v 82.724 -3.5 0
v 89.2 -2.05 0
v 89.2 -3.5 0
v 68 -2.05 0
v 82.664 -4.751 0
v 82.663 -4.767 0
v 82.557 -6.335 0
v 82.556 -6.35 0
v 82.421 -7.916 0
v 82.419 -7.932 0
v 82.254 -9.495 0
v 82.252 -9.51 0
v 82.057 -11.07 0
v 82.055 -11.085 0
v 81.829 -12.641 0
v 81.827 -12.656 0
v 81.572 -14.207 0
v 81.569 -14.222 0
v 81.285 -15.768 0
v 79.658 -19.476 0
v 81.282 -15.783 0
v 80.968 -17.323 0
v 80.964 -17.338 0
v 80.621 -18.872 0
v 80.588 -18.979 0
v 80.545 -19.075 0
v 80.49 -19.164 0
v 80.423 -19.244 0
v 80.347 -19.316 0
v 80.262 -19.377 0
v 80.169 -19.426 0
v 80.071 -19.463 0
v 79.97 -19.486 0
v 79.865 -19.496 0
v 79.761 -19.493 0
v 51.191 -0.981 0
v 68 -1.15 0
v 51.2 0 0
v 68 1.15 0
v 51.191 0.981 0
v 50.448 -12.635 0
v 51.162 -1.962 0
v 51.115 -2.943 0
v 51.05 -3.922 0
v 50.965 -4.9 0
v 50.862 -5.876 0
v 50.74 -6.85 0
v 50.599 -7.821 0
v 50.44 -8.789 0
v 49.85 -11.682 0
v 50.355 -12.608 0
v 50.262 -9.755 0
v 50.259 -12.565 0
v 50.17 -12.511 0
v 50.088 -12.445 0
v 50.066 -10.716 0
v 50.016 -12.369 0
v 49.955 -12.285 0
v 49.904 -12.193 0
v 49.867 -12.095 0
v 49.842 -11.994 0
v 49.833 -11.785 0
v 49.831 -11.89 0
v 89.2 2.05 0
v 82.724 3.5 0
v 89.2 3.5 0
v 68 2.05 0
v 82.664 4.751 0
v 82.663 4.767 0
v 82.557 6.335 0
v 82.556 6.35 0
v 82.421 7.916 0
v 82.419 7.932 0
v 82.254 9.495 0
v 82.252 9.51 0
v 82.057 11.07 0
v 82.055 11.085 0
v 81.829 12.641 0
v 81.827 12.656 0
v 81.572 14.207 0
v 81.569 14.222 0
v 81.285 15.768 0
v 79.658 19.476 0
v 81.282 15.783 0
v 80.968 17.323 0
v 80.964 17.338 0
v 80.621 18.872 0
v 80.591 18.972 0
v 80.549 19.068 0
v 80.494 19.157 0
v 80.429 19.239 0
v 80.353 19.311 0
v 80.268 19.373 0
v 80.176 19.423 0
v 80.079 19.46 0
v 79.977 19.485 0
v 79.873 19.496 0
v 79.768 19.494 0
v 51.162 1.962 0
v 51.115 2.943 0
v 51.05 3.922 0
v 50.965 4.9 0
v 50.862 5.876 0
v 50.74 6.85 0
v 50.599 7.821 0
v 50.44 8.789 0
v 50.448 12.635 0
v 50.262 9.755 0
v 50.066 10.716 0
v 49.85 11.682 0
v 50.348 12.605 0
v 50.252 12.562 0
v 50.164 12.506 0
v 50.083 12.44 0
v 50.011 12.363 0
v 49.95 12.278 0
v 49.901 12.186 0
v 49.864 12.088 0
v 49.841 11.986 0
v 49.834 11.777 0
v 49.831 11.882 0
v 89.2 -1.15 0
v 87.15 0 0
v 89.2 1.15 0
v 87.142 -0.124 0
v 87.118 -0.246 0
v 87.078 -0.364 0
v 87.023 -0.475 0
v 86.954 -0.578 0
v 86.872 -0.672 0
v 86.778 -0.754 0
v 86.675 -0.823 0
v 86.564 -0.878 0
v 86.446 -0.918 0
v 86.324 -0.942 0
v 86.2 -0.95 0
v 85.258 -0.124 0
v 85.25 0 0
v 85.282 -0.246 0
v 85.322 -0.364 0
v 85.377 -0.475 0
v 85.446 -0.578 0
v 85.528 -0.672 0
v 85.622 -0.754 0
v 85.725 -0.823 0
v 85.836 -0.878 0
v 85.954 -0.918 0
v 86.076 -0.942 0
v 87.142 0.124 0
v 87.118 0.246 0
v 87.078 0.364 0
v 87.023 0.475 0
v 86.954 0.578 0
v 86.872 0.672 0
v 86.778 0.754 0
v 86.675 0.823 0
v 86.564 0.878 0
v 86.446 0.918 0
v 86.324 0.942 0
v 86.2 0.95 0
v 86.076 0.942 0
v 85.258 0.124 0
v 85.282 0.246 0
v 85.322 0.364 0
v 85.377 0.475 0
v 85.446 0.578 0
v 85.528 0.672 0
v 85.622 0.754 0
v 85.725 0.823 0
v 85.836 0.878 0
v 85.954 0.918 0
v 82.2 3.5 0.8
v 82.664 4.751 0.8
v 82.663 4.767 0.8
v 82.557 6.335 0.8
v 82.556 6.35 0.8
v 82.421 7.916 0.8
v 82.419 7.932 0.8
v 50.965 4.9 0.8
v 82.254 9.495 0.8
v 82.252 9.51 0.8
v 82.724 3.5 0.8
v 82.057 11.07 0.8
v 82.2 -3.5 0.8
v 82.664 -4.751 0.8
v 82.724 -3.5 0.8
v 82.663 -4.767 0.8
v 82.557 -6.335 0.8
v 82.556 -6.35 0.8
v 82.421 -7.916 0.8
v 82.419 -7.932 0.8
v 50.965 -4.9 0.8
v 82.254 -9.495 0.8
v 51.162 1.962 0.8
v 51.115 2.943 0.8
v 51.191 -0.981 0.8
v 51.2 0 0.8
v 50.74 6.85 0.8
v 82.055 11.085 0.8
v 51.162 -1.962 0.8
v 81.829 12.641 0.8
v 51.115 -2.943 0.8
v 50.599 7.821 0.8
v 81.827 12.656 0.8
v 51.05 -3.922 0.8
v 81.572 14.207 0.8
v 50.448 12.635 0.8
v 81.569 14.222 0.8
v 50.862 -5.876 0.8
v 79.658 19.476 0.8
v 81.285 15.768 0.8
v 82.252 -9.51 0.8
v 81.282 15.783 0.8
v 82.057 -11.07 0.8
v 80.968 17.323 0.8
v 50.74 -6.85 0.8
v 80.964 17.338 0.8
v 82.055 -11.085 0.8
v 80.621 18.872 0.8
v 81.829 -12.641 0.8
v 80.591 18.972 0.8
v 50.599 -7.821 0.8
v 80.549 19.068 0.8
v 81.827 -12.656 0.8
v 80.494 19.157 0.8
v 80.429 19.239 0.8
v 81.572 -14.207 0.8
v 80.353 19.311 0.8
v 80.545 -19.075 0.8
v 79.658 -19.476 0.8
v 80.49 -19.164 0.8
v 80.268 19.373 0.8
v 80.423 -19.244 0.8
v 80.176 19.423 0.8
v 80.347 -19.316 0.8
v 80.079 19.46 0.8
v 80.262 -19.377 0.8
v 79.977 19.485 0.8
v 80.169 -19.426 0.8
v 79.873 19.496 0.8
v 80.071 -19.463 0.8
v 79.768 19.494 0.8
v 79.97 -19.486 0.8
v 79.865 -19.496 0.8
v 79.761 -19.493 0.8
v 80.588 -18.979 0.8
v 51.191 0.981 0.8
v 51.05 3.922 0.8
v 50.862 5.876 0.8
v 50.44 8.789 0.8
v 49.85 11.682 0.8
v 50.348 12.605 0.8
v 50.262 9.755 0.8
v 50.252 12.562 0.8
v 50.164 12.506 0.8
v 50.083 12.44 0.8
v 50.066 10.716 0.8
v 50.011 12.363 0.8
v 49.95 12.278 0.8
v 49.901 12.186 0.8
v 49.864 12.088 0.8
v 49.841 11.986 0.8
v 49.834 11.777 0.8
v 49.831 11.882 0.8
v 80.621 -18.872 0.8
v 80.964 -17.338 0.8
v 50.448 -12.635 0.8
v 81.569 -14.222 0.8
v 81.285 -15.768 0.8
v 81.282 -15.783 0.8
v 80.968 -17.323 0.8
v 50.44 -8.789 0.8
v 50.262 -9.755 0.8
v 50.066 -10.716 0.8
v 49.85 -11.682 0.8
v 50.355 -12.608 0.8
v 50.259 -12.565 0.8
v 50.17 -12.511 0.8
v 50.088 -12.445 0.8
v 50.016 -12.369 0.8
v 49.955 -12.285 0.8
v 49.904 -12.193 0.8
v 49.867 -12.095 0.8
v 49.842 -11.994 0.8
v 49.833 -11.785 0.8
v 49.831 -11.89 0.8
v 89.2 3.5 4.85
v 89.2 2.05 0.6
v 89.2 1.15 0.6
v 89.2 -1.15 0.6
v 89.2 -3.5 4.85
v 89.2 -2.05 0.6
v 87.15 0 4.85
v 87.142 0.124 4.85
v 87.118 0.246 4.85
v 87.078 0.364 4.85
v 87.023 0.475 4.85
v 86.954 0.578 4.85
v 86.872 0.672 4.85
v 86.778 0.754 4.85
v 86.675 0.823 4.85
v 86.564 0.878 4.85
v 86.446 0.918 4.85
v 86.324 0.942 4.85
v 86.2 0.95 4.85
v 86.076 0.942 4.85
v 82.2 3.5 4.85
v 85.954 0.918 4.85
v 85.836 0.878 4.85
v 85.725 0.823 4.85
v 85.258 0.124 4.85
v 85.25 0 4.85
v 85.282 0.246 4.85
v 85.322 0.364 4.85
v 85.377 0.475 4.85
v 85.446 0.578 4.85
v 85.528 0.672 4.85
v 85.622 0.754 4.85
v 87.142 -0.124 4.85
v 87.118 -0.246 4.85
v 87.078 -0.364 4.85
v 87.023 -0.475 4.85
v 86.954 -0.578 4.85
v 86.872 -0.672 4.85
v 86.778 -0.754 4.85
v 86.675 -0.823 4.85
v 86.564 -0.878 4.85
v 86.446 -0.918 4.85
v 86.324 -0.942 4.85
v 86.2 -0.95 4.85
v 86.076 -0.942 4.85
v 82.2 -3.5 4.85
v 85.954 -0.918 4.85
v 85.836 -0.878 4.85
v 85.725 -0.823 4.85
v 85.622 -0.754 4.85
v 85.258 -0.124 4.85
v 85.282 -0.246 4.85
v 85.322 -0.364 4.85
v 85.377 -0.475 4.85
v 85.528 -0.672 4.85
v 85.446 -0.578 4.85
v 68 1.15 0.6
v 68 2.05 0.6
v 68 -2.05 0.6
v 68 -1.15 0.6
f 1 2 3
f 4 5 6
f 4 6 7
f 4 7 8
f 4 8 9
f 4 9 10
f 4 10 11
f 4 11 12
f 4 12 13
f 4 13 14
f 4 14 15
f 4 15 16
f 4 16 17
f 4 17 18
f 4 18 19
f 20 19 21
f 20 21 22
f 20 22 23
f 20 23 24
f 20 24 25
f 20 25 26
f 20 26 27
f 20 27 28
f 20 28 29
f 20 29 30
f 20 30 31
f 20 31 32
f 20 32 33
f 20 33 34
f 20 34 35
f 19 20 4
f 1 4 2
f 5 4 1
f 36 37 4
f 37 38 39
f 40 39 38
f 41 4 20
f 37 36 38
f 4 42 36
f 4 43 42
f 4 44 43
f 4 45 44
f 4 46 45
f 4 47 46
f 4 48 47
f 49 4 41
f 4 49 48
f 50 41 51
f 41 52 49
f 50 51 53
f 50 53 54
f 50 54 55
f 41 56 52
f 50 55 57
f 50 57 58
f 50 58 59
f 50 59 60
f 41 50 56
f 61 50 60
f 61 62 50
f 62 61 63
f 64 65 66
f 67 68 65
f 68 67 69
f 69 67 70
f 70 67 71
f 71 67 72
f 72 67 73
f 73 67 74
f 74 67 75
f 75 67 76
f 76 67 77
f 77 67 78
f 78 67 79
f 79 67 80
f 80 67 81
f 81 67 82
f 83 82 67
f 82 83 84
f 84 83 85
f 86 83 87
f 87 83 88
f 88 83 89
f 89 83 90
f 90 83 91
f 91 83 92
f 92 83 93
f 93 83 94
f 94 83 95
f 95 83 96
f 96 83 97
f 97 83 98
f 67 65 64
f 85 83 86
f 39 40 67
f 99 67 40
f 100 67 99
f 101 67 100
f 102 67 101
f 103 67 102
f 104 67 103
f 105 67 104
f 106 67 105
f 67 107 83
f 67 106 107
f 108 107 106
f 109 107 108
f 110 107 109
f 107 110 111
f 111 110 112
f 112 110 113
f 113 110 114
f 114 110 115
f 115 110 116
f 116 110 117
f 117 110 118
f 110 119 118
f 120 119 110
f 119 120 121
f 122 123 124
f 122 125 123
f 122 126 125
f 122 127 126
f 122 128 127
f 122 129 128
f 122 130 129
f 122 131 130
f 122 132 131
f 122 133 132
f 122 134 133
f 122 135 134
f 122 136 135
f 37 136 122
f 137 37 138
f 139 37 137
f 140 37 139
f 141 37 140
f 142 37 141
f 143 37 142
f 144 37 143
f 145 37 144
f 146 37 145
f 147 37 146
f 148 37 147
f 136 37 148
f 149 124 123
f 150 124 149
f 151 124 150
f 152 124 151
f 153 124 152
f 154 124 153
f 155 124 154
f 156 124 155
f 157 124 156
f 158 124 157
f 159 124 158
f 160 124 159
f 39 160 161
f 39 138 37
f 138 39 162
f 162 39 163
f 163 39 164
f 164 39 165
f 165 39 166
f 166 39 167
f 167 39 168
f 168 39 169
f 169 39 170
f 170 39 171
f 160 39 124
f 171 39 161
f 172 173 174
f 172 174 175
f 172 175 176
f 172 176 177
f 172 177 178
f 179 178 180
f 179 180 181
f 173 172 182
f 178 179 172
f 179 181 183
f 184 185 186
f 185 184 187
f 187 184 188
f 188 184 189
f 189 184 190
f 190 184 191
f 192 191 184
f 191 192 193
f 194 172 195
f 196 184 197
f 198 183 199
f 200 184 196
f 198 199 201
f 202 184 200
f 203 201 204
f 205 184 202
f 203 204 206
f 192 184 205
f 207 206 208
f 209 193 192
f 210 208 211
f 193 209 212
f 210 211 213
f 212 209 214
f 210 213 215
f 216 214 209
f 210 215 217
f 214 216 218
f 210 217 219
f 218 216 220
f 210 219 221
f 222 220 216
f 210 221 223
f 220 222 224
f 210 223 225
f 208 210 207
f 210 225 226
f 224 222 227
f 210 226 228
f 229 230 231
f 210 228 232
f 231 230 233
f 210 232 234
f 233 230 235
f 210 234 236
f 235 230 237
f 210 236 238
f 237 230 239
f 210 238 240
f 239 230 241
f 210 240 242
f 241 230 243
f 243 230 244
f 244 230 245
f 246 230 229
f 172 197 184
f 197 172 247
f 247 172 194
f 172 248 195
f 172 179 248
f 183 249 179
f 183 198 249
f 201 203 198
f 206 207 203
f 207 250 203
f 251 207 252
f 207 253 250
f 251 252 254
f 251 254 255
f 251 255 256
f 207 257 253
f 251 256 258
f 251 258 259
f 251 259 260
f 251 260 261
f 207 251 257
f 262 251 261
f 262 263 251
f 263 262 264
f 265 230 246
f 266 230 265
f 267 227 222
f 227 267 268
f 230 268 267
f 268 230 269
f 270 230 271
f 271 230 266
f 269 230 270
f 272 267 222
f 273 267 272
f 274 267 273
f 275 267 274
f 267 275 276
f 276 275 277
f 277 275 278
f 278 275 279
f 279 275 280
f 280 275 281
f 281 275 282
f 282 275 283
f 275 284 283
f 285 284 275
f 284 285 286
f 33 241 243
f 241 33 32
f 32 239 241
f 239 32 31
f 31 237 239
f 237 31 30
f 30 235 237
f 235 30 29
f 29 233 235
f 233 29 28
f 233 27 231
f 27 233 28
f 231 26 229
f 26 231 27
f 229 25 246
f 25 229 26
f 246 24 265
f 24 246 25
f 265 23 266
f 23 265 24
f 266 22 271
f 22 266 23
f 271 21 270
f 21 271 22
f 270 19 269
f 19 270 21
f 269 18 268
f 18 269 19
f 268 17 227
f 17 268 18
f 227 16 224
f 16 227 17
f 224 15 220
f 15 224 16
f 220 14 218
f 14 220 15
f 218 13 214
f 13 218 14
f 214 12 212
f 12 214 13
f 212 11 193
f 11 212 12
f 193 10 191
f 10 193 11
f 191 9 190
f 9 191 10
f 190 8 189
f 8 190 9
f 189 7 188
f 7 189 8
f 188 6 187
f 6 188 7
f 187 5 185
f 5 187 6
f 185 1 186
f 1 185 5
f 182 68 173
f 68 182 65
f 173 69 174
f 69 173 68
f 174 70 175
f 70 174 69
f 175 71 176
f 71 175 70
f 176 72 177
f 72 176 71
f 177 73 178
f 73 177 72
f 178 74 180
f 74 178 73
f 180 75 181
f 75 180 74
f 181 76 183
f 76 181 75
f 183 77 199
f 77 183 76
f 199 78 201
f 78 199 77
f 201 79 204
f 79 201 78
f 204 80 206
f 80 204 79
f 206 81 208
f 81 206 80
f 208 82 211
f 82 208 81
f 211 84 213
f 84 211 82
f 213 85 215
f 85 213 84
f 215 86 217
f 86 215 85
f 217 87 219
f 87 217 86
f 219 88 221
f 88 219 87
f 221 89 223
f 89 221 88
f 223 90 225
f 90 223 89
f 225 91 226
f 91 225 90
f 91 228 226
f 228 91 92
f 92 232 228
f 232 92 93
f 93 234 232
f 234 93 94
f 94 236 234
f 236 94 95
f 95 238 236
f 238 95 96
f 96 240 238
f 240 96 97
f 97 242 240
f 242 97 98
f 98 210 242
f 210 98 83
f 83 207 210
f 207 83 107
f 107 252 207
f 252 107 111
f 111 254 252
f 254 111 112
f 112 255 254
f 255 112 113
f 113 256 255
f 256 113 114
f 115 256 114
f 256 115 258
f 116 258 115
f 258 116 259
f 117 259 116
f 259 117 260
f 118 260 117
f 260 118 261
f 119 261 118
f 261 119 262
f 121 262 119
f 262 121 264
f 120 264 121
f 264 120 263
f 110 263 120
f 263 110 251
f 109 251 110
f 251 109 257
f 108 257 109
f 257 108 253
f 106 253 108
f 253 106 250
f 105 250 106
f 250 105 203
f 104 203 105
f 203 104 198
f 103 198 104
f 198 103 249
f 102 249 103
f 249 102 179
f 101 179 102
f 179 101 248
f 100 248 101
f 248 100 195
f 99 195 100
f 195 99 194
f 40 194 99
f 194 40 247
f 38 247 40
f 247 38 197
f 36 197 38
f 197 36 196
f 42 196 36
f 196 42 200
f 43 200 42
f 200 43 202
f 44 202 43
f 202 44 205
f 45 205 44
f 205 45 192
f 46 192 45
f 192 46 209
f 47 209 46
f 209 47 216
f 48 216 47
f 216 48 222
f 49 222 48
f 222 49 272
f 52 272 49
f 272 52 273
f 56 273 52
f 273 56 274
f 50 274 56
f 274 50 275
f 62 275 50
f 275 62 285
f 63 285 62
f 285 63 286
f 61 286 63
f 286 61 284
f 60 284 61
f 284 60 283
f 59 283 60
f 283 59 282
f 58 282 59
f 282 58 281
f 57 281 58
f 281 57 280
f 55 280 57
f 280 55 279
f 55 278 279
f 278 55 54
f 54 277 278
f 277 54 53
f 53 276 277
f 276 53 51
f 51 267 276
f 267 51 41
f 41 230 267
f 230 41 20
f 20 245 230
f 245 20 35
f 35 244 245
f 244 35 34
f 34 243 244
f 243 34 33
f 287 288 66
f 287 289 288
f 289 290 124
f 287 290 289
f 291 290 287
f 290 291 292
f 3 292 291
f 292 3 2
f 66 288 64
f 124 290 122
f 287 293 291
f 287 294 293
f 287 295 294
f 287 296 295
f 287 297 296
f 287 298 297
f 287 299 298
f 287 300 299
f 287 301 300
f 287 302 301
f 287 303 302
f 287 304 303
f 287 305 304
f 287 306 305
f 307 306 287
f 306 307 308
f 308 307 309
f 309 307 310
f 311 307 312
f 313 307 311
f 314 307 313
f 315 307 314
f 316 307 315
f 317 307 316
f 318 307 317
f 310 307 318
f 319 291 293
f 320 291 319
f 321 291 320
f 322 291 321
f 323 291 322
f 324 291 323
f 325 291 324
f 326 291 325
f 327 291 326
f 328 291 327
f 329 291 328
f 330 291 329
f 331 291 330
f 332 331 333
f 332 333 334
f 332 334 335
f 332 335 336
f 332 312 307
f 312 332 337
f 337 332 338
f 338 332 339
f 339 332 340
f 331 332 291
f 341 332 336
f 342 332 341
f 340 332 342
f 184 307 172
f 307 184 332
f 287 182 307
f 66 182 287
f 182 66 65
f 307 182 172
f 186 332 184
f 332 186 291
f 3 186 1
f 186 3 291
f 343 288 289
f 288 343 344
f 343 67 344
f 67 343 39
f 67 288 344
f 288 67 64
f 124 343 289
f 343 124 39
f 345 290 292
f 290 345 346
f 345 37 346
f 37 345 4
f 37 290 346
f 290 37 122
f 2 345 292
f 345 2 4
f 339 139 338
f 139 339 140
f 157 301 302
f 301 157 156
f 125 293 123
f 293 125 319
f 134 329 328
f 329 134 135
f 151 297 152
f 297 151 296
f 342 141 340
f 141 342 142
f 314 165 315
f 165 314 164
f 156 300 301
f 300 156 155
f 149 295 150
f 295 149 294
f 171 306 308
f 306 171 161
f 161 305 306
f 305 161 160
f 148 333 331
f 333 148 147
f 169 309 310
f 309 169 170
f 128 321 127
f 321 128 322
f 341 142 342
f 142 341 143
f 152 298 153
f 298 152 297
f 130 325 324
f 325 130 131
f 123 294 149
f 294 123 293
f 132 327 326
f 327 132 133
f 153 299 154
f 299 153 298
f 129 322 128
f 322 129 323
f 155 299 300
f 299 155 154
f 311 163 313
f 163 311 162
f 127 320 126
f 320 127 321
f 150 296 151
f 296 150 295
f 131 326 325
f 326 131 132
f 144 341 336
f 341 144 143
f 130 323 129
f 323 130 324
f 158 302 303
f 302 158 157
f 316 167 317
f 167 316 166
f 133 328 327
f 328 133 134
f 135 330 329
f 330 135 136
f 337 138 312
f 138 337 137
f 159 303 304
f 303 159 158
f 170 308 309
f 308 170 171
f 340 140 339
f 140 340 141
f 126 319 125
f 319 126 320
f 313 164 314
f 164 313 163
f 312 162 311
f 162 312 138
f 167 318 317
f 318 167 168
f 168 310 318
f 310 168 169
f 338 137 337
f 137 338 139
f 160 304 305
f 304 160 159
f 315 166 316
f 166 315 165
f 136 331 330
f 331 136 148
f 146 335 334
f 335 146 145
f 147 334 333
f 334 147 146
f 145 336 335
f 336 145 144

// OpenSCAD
// file: parameters.scad
// =============================================================================
// Gen-BU — nightly 2026-10-10 (physics_scorer, honest magpylib watts)
// New pole/coil ratio on a much bigger ring: twelve narrow 26.4° bobbins (r 52–82 mm, 13.5 mm build, 8.1 mm copper) under 8 poles pushed out to R66, so each coil spans 120° electrical with a short mean turn while the poles sit 52 mm apart (less pole-to-pole leakage) and move faster. 8p/12c was dismissed on earlier nights at 3.2 W because it was only scanned on the R50 ring; tonight it climbs steadily with ring radius (R50 3.39 → R57 4.58 → R59.5 5.18 → R66 6.08 W scan). Diametric Ø5 assists turned out to LOWER this layout, so none are fitted. A ring this big no longer fits a one-plate layout with disc endbells, so the endbells become two crossed 44 mm bar bearing bridges, which is what keeps it on one 410 mm plate.
// Clocking 0 deg (magnets N facing S) + D-flat keyed bore + index notch + flip-symmetric hole map.
// Windable 2-piece bobbin; turns = physics_scorer turns_fit; copper only between flanges.
// Steel back-iron: 2× Ø158 × 4.76 mm (3/16") mild-steel discs (steel_backiron_disc.dxf); magnets sit ON the steel
// (through-pockets) -> score with --back-iron. Night 2026-10-10.
// =============================================================================
topology            = "dual_rotor";

// --- Wire / winding (physics_scorer winding-fit) -------------------------------
wire_awg            = 26;
wire_od             = 0.45;     // insulated OD mm (bare 0.405)
fill_realistic      = 0.65;     // insulated-wire area / window (DENSE layered wind with a jig; scorer cap 0.65)
turns               = 446;       // = physics_scorer turns_fit (do NOT raise)
coil_former_type    = "bobbin";
coil_core_inset     = 13.50;     // radial copper build: hub = copper boundary inset by this
wind_build_axial    = 0.0;      // nothing proud of the flanges
wind_build_radial   = 0.0;

// --- Bobbin (base + lid) ---------------------------------------------------------
coil_id_r           = 52.00;    // copper boundary sector
coil_od_r           = 82.00;
span_deg            = 26.36;    // = pitch - 2*asin((wall+0.85)/coil_id_r) -> >=1.2 mm stator web
former_web          = 8.10;     // copper height between flanges (TALL copper: steel keeps Bz up)
flange_t            = 0.80;     // >= 0.8 mm FDM wall rule (tall winds push on the flanges)
wall                = 0.80;     // flange lip beyond copper
former_bare_h       = former_web + 2 * flange_t;
coil_envelope_h     = former_bare_h + 2 * wind_build_axial;
tab_w               = 7.0;
tab_len             = 7.0;
tab_h               = former_bare_h / 2;
pin_d               = 1.9;      // 1.75 mm filament locating pin
coil_mount_r        = coil_od_r + 0.2 + 4.0;
lead_y              = 1.6;
lead_slot_w         = 0.9;
lead_groove_d       = 0.6;

// --- Gap -------------------------------------------------------------------------
run_clear           = 0.50;     // rotor face -> flange
gap_spacer_h        = run_clear + wind_build_axial;
m2m                 = coil_envelope_h + 2 * run_clear;   // rotor face to rotor face (= gap_sleeve length)

// --- Stator ----------------------------------------------------------------------
coil_stations       = 12;
bay_clear           = 0.25;
stator_thick        = former_bare_h;                        // bobbins flush both faces
stator_od           = 182;
shaft_clear_stator  = 14.0;     // stator is static; gap sleeve OD 12 spins inside

// --- Rotor(s) --------------------------------------------------------------------
magnet_Br           = 1.43;     // N52
magnet_d_large      = 20.0;
magnet_h_large      = 5.0;      // one O20x5 per pocket
magnet_h_small      = 5.0;      // unused: no O5 pockets in this kit
halbach_magnetisation = "none";  // NO O5 assist magnets in this kit (scan: they lower the 4-pole score)
rotor_b_same_axis   = true;     // same-index magnets share one axis: N faces S across the gap
large_pocket_d      = 20.3;
small_pocket_d      = 5.3;
pocket_h            = 5.00;     // THROUGH the carrier: magnet back face sits on the steel disc (FLUSH seat: carrier = magnet height, magnet face level with the rotor face)
large_n             = 8;
R_large             = 66.0;
small_r_list        = [];       // no O5 pockets
carrier_od          = 158.0;
carrier_thick       = pocket_h;
hub_h               = 12.0;     // > steel_t + insert: radial set-screw clears the steel
hub_od              = 24.0;     // slim hub so the M4 brace rods fit at R~18 inside the coil ring
hub_insert_d        = 4.0;      // M3 heat-set insert, radial, bears on the D-flat
rotor_b_offset_deg  = 0.0;      // CLOCKING: magnets directly opposite
shaft_key           = "dflat";
dflat_depth         = 0.5;      // 8 mm shaft with 0.5 mm flat (7.5 across flat)
index_notch_d       = 3.0;

// --- Steel back-iron (buyable laser-cut) -------------------------------------------
steel_t             = 4.76;      // mild steel thickness (image method ignores it; sized from steel_flux.py so the return path stays well below saturation)
steel_center_hole   = 26.0;     // slips over the rotor hub (OD 24)
steel_od            = carrier_od;   // steel disc OD = rotor carrier OD

// --- Modular MAX interface ----------------------------------------------------------
shaft_bore          = 8.35;
dflat_x             = 4.0 - dflat_depth + (shaft_bore - 8.0) / 2;
bearing_d           = 21.85;
bearing_h           = 7.2;
m3_clear            = 3.5;
bolt_r_inner        = 30.0;     // M3 steel-disc clamp bolts (inside the magnet ring)
bolt_n_inner        = 4;
bolt_inner_angles   = [0, 90, 180, 270];
bolt_r_outer        = 44.0;     // second M3 steel-disc clamp ring
bolt_outer_angles   = [67.5, 112.5, 247.5, 292.5];
flange_bolt_r       = 85.0;     // frame rods: OUTSIDE the rotor OD (rotors spin inside them)
flange_bolt_n       = 4;
flange_bolt_offset  = 45.00;    // between coil stations -> never cuts a lead groove/tab
brace_r             = 18.0;
brace_d             = 4.3;      // temporary M4 jack rods (assembly only)
brace_n             = 4;
brace_angles        = [45, 135, 225, 315];          // flip-symmetric

spacer_pad_od       = 14.0;
spacer_pad_id       = m3_clear;
endbell_od          = 180.0;
endbell_thick       = 8.0;
endbell_shaft_clear = 10.0;
collar_h            = 10.0;
standoff_od         = 9.0;
frame_standoff_h    = run_clear + carrier_thick + hub_h + collar_h + 2.0;
sleeve_od           = 12.0;
plate_max_mm        = 410;

$fn = 64;
// main file
// Gen-BU — bobbin LID (top flange + locating tab). Print x12, flange face DOWN on the bed.
// CA-glue onto the hub top BEFORE winding. Tab = lap joint into the stator tab pocket; 1.75 mm filament
// pin through pin hole + stator ledge, trim flush. Lead slots carry both leads flush.
include <parameters.scad>;
$fn = 48;
module sector_2d(r_in, r_out, ang) {
    polygon([
        for (a = [-ang/2 : ang/24 : ang/2]) [r_in*cos(a), r_in*sin(a)],
        for (a = [ang/2 : -ang/24 : -ang/2]) [r_out*cos(a), r_out*sin(a)]
    ]);
}
module footprint_2d() { offset(r=wall) sector_2d(coil_id_r, coil_od_r, span_deg); }
module hub_2d()       { offset(delta=-coil_core_inset) sector_2d(coil_id_r, coil_od_r, span_deg); }

difference() {
    union() {
        linear_extrude(flange_t) footprint_2d();
        translate([coil_od_r + 0.2, -tab_w/2, 0]) cube([tab_len, tab_w, tab_h]);
    }
    translate([coil_mount_r, 0, -0.1]) cylinder(d=pin_d, h=tab_h + 1);
    for (y = [lead_y, -lead_y])
        translate([coil_od_r - coil_core_inset - 0.5, y - lead_slot_w/2, -0.1])
            cube([coil_core_inset + tab_len + 2, lead_slot_w, lead_groove_d + 0.1]);
}
